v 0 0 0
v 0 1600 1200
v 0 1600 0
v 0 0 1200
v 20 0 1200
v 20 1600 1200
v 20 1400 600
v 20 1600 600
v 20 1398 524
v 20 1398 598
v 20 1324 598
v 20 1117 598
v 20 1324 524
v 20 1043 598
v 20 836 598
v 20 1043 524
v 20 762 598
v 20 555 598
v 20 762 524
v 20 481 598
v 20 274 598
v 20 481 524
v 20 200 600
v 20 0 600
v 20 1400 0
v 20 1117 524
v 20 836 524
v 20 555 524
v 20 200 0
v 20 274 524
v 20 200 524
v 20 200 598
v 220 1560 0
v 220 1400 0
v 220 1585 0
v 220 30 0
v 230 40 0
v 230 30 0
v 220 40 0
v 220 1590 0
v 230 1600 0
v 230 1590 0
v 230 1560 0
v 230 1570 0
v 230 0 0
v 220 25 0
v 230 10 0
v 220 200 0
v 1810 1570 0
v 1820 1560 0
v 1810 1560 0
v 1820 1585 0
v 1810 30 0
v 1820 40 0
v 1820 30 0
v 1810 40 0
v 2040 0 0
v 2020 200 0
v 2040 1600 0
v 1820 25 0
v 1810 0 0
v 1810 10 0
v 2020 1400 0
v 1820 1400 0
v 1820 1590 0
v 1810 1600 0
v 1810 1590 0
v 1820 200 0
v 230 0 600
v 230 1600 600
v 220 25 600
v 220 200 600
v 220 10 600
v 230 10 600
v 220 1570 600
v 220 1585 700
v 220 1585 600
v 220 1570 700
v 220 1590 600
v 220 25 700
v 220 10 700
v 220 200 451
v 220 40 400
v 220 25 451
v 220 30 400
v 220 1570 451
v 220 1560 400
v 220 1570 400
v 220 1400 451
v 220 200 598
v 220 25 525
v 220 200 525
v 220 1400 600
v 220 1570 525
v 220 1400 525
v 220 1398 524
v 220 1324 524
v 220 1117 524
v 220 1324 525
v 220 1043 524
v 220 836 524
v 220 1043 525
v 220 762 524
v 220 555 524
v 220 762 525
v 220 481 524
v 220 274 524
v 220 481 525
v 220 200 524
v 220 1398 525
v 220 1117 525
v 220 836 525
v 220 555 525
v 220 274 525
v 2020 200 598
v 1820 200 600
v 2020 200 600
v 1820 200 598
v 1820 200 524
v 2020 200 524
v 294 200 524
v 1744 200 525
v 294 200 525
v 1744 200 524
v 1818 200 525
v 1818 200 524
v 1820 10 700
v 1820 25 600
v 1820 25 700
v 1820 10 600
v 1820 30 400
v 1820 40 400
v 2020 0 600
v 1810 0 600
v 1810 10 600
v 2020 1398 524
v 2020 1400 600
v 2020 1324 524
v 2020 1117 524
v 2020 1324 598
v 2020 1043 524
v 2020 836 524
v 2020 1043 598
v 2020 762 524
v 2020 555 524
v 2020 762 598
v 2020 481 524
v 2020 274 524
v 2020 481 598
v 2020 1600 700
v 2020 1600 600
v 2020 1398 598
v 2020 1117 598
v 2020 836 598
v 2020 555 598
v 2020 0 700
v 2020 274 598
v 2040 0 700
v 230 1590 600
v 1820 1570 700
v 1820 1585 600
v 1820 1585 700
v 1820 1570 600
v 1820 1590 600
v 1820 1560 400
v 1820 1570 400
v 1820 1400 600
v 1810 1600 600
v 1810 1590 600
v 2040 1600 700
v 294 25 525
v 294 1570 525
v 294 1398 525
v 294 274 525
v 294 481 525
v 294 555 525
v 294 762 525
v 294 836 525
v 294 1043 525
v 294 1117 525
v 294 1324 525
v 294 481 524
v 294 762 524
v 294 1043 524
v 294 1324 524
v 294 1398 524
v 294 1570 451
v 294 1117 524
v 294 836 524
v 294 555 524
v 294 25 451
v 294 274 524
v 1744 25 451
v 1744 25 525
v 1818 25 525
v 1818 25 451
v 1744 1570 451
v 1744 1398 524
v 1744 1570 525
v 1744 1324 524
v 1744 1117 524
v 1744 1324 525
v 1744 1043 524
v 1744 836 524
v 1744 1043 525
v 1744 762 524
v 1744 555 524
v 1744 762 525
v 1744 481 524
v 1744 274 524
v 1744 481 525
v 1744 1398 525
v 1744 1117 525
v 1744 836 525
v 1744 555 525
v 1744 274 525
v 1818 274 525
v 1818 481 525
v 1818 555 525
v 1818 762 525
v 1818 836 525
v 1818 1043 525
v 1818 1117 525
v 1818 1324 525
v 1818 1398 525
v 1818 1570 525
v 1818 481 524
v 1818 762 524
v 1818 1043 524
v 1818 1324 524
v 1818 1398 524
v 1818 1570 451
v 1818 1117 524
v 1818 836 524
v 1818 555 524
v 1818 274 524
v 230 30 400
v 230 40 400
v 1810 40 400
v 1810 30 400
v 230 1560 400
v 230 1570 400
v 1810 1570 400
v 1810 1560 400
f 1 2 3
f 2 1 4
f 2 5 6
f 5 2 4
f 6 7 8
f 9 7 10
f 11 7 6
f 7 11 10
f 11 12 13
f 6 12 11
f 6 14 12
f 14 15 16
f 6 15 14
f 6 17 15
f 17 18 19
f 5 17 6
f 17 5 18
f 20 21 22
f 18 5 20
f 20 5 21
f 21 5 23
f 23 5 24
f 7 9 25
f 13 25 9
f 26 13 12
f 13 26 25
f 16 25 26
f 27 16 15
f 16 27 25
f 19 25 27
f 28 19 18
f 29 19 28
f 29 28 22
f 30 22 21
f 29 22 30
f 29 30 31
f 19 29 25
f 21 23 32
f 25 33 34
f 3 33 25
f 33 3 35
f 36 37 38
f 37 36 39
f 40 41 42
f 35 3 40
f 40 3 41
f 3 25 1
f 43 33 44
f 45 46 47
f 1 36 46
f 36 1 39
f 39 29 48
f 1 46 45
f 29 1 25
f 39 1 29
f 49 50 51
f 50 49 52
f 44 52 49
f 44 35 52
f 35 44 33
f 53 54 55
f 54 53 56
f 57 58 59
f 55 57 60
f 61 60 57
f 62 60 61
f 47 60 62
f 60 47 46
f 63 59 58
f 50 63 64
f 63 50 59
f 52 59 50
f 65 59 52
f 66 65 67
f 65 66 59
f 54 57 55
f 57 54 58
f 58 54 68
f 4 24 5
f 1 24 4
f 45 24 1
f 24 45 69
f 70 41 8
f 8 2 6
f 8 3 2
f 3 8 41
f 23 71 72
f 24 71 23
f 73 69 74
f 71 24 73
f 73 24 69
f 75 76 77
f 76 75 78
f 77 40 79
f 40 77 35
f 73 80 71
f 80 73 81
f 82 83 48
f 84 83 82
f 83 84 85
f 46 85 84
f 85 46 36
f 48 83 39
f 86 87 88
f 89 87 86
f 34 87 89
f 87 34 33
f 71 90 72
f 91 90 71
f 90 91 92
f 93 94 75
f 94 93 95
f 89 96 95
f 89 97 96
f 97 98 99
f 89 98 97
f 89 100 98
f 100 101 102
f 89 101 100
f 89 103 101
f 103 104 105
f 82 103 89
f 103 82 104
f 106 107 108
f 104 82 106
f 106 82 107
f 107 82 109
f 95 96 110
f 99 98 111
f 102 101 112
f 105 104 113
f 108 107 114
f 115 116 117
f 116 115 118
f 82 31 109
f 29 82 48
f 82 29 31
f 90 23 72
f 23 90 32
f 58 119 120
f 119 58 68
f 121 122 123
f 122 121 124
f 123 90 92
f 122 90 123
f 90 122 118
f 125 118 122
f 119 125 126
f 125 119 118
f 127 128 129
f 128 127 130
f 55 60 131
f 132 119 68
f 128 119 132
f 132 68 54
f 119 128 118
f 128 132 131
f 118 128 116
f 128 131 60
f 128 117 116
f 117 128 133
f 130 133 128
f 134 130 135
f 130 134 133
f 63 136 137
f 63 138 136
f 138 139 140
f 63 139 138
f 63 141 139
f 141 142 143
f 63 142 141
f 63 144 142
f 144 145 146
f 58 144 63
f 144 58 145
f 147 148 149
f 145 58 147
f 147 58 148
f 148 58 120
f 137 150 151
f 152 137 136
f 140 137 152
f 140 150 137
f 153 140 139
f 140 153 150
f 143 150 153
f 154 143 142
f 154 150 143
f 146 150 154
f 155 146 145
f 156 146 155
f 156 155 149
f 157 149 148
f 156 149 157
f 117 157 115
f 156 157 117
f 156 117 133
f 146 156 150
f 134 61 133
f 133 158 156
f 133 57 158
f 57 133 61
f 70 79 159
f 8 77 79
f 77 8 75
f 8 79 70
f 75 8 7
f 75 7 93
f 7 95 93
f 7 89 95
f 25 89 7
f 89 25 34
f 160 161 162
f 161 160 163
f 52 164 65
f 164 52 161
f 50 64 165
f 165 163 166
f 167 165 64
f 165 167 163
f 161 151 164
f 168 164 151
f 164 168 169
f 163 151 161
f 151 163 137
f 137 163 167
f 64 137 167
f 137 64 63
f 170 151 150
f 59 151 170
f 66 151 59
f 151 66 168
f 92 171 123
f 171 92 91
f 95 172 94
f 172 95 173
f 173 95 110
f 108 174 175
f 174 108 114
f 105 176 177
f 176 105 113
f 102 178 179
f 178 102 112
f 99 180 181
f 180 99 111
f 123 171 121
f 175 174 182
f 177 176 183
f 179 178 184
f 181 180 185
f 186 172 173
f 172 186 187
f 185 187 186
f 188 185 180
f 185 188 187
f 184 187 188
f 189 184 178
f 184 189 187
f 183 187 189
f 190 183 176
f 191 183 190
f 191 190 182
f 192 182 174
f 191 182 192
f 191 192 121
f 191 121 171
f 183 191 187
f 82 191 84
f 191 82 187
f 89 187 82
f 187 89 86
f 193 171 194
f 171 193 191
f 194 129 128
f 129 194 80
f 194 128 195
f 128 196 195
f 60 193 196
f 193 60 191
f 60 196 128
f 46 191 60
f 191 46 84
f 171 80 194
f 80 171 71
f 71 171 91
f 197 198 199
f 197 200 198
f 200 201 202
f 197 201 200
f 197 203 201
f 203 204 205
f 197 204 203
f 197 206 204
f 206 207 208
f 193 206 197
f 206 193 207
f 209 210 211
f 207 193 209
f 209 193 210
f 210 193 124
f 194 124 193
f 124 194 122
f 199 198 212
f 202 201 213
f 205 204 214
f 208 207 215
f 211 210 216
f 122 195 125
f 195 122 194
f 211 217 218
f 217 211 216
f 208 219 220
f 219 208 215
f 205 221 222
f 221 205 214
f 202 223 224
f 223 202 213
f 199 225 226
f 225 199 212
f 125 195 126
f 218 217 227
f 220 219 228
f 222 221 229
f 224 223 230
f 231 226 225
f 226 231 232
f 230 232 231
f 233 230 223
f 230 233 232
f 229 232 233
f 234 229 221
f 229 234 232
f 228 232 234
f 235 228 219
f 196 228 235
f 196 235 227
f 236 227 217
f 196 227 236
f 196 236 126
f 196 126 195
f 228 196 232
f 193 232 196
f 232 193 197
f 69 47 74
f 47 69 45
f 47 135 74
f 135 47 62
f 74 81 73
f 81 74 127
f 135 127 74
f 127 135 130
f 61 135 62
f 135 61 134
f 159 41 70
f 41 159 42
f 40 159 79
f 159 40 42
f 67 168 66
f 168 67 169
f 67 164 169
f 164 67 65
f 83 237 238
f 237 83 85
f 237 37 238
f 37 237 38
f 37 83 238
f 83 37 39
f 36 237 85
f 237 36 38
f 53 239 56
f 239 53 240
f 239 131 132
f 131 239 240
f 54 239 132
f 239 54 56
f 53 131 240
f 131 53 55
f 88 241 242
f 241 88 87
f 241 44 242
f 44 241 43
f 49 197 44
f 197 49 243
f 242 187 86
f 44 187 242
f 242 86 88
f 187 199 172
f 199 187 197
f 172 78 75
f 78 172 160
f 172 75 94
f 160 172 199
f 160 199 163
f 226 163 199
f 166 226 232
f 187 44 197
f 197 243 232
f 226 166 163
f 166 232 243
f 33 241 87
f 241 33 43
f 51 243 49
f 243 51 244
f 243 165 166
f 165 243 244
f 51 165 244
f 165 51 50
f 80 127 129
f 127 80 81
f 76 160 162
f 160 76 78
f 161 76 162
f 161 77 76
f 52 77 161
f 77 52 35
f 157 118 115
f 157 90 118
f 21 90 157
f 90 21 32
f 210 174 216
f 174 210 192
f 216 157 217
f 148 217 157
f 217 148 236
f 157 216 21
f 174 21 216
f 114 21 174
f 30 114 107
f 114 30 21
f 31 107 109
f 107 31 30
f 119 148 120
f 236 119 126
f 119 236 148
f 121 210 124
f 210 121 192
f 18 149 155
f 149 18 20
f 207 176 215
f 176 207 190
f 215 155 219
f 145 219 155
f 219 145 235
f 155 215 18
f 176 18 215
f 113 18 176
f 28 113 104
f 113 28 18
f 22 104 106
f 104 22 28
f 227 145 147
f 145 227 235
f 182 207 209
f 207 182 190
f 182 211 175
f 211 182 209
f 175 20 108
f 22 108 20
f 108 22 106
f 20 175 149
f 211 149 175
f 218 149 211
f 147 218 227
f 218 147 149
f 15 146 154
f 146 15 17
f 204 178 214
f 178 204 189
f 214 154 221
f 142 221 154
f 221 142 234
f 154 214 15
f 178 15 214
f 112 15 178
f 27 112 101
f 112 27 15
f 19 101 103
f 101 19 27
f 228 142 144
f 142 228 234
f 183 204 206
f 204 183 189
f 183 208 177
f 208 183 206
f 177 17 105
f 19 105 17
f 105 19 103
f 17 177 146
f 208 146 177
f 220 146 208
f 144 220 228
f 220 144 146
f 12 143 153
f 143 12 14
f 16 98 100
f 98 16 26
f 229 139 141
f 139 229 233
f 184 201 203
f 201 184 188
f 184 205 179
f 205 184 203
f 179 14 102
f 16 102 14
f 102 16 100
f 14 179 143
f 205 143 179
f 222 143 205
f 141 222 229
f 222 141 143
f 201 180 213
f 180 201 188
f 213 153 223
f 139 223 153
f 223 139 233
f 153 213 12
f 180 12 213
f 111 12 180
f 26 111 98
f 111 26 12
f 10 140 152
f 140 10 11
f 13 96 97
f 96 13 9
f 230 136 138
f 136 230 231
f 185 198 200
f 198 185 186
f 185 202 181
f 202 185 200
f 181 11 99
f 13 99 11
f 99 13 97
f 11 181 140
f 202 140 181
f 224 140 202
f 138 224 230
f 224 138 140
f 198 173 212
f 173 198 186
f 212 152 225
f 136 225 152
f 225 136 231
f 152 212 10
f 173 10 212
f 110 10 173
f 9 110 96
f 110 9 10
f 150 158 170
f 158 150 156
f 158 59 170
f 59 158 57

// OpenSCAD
    
/*
1 tête du lit
20x1200x1600
*/
translate([0,0,])
    cube([20,1600,1200]);

/*
4  pieds 200x200x600

*/
translate([20,0])
    cube([200,200,600], false);
translate([1820,0])
    cube([200,200,600], false);
translate([20,1400])
    cube([200,200,600], false);
translate([1820,1400])
    cube([200,200,600], false);

/*
2 traverses 74x74x1550
*/
translate([220,25,451])
    cube([74,1550,74], false);
translate([1744,25,451])
    cube([74,1550,74], false); 
    
/*
4 baguettes 10x10x600
*/

translate([220,0])
    cube([10,10,600],false);

translate([1810,0])
    cube([10,10,600],false);

translate([220,1590])
    cube([10,10,600],false);

translate([1810,1590])
    cube([10,10,600],false);
  
/*
4 baguettes 10x10x400
*/

translate([220,30])
    cube([10,10,400],false);

translate([1810,30])
    cube([10,10,400],false);

translate([220,1560])
    cube([10,10,400],false);

translate([1810,1560])
    cube([10,10,400],false);
  
 /* 
2 panneaux 15x700x1600
*/

translate([220,10])
    cube([1600,15,700],false);

translate([220,1570])
    cube([1600,15,700],false);

    
/*
5 supports : espace de 281 
74x74x2000
*/
translate([20,200,524])
    cube([2000,74,74],false);   
translate([20,481,524])
    cube([2000,74,74],false);
translate([20,762,524])
    cube([2000,74,74],false);
translate([20,1043,524])
    cube([2000,74,74],false);
translate([20,1324,524])
    cube([2000,74,74],false);
    
/*
1 pied de lit
20x700x1600
*/
translate([2020,0,0])
    cube([20,1600,700]);
